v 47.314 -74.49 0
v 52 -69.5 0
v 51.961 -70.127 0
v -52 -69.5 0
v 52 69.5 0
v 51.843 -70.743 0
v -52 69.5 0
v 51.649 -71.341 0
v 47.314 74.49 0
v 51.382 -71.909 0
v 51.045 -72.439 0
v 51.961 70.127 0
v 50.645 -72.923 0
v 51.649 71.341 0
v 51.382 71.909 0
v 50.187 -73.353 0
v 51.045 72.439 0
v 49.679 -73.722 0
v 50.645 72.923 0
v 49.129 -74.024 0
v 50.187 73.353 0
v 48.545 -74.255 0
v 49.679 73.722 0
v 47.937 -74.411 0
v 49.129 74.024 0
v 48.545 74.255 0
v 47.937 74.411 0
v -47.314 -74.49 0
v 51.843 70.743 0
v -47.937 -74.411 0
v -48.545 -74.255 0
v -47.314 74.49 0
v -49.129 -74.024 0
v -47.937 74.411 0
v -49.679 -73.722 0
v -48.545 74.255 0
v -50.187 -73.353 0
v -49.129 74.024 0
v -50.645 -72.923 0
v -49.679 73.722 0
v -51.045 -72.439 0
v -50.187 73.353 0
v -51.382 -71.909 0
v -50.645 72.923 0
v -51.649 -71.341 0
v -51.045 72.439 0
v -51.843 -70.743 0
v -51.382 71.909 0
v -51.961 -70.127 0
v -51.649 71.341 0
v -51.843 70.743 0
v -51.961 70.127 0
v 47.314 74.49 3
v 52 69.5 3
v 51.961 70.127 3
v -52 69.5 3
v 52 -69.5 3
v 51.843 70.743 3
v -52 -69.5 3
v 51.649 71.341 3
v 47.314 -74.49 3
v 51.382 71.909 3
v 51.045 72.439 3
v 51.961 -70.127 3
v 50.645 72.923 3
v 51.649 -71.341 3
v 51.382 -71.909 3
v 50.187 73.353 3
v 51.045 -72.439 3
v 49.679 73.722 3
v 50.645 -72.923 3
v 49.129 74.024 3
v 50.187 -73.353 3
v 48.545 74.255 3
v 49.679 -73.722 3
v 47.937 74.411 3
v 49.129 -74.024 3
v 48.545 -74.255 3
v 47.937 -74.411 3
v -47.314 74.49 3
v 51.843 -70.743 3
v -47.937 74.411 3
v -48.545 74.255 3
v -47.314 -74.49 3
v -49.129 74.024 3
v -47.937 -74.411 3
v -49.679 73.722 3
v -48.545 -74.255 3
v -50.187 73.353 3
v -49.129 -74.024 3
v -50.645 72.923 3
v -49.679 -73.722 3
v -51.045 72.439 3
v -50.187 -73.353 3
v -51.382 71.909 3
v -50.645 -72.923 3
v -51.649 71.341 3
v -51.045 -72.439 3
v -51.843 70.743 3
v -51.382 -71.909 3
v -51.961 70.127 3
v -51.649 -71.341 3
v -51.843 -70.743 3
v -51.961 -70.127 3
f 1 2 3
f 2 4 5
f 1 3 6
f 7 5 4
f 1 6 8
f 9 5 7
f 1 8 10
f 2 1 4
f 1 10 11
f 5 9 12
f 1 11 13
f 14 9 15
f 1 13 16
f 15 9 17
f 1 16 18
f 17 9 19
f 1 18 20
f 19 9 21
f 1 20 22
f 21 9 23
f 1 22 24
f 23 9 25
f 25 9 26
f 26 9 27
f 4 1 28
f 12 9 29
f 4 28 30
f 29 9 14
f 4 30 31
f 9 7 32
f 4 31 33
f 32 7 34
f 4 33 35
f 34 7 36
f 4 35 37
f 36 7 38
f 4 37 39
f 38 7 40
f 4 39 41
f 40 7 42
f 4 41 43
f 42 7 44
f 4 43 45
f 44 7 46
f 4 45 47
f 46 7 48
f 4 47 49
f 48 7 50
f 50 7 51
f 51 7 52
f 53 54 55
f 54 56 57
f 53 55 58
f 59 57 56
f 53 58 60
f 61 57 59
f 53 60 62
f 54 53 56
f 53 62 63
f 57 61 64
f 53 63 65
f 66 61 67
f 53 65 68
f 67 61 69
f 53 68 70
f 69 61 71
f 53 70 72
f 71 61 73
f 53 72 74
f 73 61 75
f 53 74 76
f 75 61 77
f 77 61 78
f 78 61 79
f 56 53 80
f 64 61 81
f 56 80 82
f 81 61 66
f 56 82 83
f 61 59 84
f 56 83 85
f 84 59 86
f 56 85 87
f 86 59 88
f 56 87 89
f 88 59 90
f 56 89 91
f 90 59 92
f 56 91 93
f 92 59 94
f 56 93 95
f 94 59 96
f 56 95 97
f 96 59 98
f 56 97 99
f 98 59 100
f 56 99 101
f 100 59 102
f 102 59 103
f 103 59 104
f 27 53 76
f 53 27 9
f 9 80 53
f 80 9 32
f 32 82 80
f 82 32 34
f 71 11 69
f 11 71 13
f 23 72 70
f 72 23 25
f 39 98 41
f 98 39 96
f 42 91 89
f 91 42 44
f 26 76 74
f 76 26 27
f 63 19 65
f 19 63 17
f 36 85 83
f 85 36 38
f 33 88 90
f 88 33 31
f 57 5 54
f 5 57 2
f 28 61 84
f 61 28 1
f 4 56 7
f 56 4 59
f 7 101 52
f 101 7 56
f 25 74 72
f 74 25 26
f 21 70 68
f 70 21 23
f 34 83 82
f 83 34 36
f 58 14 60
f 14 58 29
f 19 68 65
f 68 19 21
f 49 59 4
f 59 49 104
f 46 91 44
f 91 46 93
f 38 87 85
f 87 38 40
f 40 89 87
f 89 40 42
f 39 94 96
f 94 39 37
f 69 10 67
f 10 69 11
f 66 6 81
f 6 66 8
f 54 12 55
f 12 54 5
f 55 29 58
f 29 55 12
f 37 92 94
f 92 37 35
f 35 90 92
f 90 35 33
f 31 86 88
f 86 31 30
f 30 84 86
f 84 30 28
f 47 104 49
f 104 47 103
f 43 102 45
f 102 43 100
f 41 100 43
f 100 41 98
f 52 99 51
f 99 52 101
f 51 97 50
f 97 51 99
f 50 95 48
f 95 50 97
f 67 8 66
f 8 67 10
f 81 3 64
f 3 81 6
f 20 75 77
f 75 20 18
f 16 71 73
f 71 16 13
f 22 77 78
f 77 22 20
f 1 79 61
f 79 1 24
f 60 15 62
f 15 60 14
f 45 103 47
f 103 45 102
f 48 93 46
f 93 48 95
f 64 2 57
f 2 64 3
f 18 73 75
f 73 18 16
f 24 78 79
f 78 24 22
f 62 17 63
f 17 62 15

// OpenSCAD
$fn = 50;


difference() {
	union() {
		hull() {
			translate(v = [-47.0000000000, 69.5000000000, 0]) {
				cylinder(h = 3, r = 5);
			}
			translate(v = [47.0000000000, 69.5000000000, 0]) {
				cylinder(h = 3, r = 5);
			}
			translate(v = [-47.0000000000, -69.5000000000, 0]) {
				cylinder(h = 3, r = 5);
			}
			translate(v = [47.0000000000, -69.5000000000, 0]) {
				cylinder(h = 3, r = 5);
			}
		}
	}
	union();
}
